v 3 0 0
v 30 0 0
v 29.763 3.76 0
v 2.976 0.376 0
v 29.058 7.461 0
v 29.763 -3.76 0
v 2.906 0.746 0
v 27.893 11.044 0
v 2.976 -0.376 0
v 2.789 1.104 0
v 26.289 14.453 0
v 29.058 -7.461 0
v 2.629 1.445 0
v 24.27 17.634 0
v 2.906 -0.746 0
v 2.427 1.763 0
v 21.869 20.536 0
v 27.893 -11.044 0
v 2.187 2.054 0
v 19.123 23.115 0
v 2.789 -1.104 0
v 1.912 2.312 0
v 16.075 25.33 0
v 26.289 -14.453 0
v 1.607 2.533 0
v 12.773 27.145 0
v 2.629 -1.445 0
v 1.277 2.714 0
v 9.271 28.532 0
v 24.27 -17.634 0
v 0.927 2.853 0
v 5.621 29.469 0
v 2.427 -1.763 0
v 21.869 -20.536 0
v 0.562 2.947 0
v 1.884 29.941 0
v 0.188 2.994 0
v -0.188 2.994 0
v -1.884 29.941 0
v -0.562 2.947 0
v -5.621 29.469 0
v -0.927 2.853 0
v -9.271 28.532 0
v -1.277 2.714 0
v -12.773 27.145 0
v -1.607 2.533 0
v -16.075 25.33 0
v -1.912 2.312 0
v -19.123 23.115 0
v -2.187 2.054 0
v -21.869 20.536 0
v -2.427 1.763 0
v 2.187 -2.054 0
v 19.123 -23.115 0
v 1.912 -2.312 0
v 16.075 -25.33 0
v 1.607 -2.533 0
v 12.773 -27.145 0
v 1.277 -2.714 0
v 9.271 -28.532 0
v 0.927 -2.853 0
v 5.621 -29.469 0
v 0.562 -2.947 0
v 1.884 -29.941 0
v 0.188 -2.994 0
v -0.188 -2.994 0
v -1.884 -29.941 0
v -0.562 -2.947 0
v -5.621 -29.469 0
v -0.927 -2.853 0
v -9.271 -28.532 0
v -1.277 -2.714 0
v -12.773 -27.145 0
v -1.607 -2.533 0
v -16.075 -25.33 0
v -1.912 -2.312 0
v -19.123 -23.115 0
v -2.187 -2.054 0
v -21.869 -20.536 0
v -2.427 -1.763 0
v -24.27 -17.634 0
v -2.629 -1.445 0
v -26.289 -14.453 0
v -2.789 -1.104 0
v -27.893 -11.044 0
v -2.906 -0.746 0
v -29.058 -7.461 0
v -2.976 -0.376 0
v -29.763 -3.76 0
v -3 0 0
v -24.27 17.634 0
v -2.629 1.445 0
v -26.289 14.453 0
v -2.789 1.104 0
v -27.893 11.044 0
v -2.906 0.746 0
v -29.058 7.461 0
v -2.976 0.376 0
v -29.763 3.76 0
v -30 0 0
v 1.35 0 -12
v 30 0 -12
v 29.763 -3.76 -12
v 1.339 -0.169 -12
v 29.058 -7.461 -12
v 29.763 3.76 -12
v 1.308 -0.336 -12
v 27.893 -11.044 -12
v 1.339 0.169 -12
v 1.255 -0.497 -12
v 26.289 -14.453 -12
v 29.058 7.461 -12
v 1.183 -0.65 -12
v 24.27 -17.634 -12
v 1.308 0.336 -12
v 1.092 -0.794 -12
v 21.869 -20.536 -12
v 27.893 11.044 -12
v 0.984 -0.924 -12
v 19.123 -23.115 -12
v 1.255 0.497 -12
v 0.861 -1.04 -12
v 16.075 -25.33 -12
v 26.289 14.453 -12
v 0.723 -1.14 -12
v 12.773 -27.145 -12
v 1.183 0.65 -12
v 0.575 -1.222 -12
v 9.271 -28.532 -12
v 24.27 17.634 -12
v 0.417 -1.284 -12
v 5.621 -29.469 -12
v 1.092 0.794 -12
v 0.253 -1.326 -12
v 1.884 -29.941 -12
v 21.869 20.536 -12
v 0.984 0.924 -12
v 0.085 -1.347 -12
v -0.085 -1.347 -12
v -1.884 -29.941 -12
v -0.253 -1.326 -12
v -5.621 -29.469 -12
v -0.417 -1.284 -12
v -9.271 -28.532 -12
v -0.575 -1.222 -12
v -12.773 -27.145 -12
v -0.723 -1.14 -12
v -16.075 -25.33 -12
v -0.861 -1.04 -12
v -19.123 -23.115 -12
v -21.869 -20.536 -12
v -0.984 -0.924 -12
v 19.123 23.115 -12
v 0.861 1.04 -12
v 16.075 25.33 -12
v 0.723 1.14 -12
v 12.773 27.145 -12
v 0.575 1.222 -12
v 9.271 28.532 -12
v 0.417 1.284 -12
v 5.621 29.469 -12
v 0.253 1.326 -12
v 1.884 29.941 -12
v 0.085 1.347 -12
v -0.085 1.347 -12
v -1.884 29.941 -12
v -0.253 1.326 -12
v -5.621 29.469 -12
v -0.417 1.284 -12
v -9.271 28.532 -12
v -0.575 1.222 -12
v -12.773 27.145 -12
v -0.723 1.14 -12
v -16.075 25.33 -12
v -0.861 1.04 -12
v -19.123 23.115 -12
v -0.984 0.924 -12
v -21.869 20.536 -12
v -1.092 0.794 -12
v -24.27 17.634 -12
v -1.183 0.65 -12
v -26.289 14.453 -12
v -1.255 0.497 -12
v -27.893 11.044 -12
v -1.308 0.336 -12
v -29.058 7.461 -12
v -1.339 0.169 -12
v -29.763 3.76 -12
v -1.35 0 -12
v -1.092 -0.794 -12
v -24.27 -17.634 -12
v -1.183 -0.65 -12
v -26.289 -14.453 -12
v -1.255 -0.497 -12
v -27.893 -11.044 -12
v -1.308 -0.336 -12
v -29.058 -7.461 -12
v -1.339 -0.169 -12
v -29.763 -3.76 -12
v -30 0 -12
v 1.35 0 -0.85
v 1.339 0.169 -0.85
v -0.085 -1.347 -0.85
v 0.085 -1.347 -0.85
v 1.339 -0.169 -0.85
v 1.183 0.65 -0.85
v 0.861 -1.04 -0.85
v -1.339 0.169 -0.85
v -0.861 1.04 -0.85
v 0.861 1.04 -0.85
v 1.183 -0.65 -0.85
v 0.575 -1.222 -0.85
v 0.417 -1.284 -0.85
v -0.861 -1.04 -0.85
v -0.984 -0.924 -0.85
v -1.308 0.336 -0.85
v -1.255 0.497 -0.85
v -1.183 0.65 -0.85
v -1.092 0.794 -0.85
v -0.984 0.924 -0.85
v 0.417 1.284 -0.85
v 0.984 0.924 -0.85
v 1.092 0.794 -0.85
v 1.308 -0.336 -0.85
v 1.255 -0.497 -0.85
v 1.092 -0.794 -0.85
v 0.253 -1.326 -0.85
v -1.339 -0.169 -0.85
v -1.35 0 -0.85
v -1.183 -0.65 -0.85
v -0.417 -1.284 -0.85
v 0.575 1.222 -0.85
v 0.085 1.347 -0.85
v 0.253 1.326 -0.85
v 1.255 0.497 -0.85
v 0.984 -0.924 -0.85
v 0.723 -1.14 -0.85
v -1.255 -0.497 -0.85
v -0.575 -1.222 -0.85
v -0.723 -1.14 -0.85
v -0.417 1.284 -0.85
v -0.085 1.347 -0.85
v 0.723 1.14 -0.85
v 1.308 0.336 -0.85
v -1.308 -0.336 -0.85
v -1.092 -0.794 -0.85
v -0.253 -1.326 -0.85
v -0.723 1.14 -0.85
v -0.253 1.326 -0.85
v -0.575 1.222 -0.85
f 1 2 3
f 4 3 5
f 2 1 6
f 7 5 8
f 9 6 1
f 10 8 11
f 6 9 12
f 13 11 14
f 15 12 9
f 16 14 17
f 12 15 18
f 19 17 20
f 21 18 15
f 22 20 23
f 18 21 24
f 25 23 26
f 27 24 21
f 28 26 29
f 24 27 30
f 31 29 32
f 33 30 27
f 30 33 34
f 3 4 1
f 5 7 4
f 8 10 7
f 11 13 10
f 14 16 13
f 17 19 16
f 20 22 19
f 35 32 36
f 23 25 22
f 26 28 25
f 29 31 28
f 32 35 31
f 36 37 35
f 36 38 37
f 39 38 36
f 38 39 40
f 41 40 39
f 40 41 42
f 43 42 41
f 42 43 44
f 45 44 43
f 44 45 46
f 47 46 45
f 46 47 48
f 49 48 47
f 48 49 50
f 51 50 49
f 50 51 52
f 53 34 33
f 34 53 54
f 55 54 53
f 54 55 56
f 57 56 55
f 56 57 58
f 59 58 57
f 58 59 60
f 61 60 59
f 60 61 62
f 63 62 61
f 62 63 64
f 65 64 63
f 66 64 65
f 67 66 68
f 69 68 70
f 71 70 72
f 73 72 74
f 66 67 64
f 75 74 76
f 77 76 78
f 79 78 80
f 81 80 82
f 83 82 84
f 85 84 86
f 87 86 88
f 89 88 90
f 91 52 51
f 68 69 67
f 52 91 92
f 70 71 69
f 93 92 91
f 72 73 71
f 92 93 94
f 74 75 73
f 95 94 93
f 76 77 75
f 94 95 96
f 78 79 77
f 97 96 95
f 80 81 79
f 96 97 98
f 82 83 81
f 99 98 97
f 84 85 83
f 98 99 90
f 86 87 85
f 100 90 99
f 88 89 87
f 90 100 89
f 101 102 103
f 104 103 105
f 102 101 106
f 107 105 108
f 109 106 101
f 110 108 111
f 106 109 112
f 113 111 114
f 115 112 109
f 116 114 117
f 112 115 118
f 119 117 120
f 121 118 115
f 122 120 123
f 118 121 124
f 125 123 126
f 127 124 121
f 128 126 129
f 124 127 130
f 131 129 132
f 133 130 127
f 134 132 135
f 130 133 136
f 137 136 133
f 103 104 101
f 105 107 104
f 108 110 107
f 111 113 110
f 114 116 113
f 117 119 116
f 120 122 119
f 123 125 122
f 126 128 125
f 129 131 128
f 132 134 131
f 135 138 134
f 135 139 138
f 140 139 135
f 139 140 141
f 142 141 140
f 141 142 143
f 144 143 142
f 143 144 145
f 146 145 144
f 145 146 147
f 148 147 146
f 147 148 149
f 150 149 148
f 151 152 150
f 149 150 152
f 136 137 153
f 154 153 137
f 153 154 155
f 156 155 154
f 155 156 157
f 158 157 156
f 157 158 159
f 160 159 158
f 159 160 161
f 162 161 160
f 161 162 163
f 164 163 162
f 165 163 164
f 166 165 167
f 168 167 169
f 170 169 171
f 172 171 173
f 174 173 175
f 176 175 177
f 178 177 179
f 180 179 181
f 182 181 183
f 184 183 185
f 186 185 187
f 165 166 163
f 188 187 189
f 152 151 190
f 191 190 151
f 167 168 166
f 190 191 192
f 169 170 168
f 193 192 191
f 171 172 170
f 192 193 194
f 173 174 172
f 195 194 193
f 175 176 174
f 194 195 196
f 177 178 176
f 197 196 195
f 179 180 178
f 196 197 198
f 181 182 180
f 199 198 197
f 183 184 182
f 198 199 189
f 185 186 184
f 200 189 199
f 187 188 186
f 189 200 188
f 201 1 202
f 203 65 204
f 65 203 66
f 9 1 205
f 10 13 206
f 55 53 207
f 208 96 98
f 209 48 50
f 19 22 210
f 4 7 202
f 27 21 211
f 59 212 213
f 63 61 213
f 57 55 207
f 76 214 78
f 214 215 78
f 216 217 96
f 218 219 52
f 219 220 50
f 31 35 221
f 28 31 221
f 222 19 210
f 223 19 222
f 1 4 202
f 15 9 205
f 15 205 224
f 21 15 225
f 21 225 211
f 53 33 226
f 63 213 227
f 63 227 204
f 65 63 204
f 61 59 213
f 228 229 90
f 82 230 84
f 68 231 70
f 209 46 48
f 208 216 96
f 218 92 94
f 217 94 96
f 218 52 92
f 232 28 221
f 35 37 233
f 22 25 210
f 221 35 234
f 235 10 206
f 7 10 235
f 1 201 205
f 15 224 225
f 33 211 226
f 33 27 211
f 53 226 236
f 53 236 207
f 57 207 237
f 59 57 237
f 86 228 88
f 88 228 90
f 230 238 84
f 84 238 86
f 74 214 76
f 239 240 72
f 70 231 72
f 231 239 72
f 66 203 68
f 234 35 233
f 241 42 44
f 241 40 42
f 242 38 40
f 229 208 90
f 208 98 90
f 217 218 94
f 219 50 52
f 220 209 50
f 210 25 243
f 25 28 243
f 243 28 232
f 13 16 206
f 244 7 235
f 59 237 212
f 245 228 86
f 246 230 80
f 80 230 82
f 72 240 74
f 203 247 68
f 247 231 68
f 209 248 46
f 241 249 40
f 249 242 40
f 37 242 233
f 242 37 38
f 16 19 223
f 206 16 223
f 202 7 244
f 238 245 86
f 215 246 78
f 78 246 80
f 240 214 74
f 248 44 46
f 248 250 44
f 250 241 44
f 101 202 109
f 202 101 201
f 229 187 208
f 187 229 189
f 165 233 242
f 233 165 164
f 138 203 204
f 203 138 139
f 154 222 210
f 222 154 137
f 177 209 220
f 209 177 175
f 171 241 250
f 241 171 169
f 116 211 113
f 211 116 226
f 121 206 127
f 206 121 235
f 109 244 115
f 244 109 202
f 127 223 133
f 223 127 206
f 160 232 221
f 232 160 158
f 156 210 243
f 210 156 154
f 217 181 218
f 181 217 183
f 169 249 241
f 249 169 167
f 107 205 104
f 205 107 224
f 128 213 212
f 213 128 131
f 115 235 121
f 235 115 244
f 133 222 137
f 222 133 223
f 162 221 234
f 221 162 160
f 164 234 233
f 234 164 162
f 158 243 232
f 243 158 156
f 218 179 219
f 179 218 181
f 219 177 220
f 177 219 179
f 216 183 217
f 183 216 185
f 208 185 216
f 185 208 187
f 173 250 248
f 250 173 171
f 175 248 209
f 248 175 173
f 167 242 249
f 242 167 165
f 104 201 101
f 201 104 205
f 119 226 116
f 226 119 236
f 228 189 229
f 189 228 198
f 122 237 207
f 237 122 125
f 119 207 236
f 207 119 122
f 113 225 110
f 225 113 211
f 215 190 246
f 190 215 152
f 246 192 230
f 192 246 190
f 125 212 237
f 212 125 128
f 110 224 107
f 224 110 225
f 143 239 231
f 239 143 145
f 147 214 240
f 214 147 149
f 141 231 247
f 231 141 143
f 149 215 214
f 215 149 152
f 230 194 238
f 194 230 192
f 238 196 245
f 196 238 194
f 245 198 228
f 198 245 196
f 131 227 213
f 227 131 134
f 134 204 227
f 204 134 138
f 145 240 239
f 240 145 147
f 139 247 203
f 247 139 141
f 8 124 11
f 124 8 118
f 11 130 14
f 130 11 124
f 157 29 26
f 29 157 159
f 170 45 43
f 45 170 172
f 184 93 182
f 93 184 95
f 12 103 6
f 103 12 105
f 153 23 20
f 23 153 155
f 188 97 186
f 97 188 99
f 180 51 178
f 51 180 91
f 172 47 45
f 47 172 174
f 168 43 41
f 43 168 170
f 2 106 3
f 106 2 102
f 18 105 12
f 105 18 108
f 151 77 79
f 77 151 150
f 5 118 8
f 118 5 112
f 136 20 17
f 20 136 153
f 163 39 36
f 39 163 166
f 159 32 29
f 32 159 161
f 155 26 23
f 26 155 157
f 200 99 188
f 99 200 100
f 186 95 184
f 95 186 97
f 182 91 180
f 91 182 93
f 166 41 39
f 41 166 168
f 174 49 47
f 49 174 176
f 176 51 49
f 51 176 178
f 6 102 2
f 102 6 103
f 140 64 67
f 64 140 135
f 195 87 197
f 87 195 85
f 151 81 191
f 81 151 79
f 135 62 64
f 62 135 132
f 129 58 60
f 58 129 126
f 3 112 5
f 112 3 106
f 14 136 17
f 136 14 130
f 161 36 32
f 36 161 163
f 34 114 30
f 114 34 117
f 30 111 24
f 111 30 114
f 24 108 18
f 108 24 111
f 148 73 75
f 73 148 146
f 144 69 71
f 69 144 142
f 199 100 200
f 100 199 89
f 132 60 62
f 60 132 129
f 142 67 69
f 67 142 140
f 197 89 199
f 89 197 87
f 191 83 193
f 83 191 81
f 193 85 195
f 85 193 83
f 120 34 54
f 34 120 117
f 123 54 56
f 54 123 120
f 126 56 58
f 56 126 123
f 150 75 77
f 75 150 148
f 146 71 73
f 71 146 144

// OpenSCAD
$fn = 50;


difference() {
	union() {
		translate(v = [0, 0, -12.0000000000]) {
			cylinder(h = 12, r = 30.0000000000);
		}
	}
	union() {
		translate(v = [0, 0, 0]) {
			rotate(a = [0, 0, 0]) {
				difference() {
					union() {
						translate(v = [0, 0, -12.0000000000]) {
							cylinder(h = 12, r = 1.0000000000);
						}
						translate(v = [0, 0, -0.8500000000]) {
							cylinder(h = 0.8500000000, r1 = 1.3500000000, r2 = 3.0000000000);
						}
						translate(v = [0, 0, -12.0000000000]) {
							cylinder(h = 12, r = 1.3500000000);
						}
						translate(v = [0, 0, -12.0000000000]) {
							cylinder(h = 12, r = 1.0000000000);
						}
					}
					union();
				}
			}
		}
	}
}
